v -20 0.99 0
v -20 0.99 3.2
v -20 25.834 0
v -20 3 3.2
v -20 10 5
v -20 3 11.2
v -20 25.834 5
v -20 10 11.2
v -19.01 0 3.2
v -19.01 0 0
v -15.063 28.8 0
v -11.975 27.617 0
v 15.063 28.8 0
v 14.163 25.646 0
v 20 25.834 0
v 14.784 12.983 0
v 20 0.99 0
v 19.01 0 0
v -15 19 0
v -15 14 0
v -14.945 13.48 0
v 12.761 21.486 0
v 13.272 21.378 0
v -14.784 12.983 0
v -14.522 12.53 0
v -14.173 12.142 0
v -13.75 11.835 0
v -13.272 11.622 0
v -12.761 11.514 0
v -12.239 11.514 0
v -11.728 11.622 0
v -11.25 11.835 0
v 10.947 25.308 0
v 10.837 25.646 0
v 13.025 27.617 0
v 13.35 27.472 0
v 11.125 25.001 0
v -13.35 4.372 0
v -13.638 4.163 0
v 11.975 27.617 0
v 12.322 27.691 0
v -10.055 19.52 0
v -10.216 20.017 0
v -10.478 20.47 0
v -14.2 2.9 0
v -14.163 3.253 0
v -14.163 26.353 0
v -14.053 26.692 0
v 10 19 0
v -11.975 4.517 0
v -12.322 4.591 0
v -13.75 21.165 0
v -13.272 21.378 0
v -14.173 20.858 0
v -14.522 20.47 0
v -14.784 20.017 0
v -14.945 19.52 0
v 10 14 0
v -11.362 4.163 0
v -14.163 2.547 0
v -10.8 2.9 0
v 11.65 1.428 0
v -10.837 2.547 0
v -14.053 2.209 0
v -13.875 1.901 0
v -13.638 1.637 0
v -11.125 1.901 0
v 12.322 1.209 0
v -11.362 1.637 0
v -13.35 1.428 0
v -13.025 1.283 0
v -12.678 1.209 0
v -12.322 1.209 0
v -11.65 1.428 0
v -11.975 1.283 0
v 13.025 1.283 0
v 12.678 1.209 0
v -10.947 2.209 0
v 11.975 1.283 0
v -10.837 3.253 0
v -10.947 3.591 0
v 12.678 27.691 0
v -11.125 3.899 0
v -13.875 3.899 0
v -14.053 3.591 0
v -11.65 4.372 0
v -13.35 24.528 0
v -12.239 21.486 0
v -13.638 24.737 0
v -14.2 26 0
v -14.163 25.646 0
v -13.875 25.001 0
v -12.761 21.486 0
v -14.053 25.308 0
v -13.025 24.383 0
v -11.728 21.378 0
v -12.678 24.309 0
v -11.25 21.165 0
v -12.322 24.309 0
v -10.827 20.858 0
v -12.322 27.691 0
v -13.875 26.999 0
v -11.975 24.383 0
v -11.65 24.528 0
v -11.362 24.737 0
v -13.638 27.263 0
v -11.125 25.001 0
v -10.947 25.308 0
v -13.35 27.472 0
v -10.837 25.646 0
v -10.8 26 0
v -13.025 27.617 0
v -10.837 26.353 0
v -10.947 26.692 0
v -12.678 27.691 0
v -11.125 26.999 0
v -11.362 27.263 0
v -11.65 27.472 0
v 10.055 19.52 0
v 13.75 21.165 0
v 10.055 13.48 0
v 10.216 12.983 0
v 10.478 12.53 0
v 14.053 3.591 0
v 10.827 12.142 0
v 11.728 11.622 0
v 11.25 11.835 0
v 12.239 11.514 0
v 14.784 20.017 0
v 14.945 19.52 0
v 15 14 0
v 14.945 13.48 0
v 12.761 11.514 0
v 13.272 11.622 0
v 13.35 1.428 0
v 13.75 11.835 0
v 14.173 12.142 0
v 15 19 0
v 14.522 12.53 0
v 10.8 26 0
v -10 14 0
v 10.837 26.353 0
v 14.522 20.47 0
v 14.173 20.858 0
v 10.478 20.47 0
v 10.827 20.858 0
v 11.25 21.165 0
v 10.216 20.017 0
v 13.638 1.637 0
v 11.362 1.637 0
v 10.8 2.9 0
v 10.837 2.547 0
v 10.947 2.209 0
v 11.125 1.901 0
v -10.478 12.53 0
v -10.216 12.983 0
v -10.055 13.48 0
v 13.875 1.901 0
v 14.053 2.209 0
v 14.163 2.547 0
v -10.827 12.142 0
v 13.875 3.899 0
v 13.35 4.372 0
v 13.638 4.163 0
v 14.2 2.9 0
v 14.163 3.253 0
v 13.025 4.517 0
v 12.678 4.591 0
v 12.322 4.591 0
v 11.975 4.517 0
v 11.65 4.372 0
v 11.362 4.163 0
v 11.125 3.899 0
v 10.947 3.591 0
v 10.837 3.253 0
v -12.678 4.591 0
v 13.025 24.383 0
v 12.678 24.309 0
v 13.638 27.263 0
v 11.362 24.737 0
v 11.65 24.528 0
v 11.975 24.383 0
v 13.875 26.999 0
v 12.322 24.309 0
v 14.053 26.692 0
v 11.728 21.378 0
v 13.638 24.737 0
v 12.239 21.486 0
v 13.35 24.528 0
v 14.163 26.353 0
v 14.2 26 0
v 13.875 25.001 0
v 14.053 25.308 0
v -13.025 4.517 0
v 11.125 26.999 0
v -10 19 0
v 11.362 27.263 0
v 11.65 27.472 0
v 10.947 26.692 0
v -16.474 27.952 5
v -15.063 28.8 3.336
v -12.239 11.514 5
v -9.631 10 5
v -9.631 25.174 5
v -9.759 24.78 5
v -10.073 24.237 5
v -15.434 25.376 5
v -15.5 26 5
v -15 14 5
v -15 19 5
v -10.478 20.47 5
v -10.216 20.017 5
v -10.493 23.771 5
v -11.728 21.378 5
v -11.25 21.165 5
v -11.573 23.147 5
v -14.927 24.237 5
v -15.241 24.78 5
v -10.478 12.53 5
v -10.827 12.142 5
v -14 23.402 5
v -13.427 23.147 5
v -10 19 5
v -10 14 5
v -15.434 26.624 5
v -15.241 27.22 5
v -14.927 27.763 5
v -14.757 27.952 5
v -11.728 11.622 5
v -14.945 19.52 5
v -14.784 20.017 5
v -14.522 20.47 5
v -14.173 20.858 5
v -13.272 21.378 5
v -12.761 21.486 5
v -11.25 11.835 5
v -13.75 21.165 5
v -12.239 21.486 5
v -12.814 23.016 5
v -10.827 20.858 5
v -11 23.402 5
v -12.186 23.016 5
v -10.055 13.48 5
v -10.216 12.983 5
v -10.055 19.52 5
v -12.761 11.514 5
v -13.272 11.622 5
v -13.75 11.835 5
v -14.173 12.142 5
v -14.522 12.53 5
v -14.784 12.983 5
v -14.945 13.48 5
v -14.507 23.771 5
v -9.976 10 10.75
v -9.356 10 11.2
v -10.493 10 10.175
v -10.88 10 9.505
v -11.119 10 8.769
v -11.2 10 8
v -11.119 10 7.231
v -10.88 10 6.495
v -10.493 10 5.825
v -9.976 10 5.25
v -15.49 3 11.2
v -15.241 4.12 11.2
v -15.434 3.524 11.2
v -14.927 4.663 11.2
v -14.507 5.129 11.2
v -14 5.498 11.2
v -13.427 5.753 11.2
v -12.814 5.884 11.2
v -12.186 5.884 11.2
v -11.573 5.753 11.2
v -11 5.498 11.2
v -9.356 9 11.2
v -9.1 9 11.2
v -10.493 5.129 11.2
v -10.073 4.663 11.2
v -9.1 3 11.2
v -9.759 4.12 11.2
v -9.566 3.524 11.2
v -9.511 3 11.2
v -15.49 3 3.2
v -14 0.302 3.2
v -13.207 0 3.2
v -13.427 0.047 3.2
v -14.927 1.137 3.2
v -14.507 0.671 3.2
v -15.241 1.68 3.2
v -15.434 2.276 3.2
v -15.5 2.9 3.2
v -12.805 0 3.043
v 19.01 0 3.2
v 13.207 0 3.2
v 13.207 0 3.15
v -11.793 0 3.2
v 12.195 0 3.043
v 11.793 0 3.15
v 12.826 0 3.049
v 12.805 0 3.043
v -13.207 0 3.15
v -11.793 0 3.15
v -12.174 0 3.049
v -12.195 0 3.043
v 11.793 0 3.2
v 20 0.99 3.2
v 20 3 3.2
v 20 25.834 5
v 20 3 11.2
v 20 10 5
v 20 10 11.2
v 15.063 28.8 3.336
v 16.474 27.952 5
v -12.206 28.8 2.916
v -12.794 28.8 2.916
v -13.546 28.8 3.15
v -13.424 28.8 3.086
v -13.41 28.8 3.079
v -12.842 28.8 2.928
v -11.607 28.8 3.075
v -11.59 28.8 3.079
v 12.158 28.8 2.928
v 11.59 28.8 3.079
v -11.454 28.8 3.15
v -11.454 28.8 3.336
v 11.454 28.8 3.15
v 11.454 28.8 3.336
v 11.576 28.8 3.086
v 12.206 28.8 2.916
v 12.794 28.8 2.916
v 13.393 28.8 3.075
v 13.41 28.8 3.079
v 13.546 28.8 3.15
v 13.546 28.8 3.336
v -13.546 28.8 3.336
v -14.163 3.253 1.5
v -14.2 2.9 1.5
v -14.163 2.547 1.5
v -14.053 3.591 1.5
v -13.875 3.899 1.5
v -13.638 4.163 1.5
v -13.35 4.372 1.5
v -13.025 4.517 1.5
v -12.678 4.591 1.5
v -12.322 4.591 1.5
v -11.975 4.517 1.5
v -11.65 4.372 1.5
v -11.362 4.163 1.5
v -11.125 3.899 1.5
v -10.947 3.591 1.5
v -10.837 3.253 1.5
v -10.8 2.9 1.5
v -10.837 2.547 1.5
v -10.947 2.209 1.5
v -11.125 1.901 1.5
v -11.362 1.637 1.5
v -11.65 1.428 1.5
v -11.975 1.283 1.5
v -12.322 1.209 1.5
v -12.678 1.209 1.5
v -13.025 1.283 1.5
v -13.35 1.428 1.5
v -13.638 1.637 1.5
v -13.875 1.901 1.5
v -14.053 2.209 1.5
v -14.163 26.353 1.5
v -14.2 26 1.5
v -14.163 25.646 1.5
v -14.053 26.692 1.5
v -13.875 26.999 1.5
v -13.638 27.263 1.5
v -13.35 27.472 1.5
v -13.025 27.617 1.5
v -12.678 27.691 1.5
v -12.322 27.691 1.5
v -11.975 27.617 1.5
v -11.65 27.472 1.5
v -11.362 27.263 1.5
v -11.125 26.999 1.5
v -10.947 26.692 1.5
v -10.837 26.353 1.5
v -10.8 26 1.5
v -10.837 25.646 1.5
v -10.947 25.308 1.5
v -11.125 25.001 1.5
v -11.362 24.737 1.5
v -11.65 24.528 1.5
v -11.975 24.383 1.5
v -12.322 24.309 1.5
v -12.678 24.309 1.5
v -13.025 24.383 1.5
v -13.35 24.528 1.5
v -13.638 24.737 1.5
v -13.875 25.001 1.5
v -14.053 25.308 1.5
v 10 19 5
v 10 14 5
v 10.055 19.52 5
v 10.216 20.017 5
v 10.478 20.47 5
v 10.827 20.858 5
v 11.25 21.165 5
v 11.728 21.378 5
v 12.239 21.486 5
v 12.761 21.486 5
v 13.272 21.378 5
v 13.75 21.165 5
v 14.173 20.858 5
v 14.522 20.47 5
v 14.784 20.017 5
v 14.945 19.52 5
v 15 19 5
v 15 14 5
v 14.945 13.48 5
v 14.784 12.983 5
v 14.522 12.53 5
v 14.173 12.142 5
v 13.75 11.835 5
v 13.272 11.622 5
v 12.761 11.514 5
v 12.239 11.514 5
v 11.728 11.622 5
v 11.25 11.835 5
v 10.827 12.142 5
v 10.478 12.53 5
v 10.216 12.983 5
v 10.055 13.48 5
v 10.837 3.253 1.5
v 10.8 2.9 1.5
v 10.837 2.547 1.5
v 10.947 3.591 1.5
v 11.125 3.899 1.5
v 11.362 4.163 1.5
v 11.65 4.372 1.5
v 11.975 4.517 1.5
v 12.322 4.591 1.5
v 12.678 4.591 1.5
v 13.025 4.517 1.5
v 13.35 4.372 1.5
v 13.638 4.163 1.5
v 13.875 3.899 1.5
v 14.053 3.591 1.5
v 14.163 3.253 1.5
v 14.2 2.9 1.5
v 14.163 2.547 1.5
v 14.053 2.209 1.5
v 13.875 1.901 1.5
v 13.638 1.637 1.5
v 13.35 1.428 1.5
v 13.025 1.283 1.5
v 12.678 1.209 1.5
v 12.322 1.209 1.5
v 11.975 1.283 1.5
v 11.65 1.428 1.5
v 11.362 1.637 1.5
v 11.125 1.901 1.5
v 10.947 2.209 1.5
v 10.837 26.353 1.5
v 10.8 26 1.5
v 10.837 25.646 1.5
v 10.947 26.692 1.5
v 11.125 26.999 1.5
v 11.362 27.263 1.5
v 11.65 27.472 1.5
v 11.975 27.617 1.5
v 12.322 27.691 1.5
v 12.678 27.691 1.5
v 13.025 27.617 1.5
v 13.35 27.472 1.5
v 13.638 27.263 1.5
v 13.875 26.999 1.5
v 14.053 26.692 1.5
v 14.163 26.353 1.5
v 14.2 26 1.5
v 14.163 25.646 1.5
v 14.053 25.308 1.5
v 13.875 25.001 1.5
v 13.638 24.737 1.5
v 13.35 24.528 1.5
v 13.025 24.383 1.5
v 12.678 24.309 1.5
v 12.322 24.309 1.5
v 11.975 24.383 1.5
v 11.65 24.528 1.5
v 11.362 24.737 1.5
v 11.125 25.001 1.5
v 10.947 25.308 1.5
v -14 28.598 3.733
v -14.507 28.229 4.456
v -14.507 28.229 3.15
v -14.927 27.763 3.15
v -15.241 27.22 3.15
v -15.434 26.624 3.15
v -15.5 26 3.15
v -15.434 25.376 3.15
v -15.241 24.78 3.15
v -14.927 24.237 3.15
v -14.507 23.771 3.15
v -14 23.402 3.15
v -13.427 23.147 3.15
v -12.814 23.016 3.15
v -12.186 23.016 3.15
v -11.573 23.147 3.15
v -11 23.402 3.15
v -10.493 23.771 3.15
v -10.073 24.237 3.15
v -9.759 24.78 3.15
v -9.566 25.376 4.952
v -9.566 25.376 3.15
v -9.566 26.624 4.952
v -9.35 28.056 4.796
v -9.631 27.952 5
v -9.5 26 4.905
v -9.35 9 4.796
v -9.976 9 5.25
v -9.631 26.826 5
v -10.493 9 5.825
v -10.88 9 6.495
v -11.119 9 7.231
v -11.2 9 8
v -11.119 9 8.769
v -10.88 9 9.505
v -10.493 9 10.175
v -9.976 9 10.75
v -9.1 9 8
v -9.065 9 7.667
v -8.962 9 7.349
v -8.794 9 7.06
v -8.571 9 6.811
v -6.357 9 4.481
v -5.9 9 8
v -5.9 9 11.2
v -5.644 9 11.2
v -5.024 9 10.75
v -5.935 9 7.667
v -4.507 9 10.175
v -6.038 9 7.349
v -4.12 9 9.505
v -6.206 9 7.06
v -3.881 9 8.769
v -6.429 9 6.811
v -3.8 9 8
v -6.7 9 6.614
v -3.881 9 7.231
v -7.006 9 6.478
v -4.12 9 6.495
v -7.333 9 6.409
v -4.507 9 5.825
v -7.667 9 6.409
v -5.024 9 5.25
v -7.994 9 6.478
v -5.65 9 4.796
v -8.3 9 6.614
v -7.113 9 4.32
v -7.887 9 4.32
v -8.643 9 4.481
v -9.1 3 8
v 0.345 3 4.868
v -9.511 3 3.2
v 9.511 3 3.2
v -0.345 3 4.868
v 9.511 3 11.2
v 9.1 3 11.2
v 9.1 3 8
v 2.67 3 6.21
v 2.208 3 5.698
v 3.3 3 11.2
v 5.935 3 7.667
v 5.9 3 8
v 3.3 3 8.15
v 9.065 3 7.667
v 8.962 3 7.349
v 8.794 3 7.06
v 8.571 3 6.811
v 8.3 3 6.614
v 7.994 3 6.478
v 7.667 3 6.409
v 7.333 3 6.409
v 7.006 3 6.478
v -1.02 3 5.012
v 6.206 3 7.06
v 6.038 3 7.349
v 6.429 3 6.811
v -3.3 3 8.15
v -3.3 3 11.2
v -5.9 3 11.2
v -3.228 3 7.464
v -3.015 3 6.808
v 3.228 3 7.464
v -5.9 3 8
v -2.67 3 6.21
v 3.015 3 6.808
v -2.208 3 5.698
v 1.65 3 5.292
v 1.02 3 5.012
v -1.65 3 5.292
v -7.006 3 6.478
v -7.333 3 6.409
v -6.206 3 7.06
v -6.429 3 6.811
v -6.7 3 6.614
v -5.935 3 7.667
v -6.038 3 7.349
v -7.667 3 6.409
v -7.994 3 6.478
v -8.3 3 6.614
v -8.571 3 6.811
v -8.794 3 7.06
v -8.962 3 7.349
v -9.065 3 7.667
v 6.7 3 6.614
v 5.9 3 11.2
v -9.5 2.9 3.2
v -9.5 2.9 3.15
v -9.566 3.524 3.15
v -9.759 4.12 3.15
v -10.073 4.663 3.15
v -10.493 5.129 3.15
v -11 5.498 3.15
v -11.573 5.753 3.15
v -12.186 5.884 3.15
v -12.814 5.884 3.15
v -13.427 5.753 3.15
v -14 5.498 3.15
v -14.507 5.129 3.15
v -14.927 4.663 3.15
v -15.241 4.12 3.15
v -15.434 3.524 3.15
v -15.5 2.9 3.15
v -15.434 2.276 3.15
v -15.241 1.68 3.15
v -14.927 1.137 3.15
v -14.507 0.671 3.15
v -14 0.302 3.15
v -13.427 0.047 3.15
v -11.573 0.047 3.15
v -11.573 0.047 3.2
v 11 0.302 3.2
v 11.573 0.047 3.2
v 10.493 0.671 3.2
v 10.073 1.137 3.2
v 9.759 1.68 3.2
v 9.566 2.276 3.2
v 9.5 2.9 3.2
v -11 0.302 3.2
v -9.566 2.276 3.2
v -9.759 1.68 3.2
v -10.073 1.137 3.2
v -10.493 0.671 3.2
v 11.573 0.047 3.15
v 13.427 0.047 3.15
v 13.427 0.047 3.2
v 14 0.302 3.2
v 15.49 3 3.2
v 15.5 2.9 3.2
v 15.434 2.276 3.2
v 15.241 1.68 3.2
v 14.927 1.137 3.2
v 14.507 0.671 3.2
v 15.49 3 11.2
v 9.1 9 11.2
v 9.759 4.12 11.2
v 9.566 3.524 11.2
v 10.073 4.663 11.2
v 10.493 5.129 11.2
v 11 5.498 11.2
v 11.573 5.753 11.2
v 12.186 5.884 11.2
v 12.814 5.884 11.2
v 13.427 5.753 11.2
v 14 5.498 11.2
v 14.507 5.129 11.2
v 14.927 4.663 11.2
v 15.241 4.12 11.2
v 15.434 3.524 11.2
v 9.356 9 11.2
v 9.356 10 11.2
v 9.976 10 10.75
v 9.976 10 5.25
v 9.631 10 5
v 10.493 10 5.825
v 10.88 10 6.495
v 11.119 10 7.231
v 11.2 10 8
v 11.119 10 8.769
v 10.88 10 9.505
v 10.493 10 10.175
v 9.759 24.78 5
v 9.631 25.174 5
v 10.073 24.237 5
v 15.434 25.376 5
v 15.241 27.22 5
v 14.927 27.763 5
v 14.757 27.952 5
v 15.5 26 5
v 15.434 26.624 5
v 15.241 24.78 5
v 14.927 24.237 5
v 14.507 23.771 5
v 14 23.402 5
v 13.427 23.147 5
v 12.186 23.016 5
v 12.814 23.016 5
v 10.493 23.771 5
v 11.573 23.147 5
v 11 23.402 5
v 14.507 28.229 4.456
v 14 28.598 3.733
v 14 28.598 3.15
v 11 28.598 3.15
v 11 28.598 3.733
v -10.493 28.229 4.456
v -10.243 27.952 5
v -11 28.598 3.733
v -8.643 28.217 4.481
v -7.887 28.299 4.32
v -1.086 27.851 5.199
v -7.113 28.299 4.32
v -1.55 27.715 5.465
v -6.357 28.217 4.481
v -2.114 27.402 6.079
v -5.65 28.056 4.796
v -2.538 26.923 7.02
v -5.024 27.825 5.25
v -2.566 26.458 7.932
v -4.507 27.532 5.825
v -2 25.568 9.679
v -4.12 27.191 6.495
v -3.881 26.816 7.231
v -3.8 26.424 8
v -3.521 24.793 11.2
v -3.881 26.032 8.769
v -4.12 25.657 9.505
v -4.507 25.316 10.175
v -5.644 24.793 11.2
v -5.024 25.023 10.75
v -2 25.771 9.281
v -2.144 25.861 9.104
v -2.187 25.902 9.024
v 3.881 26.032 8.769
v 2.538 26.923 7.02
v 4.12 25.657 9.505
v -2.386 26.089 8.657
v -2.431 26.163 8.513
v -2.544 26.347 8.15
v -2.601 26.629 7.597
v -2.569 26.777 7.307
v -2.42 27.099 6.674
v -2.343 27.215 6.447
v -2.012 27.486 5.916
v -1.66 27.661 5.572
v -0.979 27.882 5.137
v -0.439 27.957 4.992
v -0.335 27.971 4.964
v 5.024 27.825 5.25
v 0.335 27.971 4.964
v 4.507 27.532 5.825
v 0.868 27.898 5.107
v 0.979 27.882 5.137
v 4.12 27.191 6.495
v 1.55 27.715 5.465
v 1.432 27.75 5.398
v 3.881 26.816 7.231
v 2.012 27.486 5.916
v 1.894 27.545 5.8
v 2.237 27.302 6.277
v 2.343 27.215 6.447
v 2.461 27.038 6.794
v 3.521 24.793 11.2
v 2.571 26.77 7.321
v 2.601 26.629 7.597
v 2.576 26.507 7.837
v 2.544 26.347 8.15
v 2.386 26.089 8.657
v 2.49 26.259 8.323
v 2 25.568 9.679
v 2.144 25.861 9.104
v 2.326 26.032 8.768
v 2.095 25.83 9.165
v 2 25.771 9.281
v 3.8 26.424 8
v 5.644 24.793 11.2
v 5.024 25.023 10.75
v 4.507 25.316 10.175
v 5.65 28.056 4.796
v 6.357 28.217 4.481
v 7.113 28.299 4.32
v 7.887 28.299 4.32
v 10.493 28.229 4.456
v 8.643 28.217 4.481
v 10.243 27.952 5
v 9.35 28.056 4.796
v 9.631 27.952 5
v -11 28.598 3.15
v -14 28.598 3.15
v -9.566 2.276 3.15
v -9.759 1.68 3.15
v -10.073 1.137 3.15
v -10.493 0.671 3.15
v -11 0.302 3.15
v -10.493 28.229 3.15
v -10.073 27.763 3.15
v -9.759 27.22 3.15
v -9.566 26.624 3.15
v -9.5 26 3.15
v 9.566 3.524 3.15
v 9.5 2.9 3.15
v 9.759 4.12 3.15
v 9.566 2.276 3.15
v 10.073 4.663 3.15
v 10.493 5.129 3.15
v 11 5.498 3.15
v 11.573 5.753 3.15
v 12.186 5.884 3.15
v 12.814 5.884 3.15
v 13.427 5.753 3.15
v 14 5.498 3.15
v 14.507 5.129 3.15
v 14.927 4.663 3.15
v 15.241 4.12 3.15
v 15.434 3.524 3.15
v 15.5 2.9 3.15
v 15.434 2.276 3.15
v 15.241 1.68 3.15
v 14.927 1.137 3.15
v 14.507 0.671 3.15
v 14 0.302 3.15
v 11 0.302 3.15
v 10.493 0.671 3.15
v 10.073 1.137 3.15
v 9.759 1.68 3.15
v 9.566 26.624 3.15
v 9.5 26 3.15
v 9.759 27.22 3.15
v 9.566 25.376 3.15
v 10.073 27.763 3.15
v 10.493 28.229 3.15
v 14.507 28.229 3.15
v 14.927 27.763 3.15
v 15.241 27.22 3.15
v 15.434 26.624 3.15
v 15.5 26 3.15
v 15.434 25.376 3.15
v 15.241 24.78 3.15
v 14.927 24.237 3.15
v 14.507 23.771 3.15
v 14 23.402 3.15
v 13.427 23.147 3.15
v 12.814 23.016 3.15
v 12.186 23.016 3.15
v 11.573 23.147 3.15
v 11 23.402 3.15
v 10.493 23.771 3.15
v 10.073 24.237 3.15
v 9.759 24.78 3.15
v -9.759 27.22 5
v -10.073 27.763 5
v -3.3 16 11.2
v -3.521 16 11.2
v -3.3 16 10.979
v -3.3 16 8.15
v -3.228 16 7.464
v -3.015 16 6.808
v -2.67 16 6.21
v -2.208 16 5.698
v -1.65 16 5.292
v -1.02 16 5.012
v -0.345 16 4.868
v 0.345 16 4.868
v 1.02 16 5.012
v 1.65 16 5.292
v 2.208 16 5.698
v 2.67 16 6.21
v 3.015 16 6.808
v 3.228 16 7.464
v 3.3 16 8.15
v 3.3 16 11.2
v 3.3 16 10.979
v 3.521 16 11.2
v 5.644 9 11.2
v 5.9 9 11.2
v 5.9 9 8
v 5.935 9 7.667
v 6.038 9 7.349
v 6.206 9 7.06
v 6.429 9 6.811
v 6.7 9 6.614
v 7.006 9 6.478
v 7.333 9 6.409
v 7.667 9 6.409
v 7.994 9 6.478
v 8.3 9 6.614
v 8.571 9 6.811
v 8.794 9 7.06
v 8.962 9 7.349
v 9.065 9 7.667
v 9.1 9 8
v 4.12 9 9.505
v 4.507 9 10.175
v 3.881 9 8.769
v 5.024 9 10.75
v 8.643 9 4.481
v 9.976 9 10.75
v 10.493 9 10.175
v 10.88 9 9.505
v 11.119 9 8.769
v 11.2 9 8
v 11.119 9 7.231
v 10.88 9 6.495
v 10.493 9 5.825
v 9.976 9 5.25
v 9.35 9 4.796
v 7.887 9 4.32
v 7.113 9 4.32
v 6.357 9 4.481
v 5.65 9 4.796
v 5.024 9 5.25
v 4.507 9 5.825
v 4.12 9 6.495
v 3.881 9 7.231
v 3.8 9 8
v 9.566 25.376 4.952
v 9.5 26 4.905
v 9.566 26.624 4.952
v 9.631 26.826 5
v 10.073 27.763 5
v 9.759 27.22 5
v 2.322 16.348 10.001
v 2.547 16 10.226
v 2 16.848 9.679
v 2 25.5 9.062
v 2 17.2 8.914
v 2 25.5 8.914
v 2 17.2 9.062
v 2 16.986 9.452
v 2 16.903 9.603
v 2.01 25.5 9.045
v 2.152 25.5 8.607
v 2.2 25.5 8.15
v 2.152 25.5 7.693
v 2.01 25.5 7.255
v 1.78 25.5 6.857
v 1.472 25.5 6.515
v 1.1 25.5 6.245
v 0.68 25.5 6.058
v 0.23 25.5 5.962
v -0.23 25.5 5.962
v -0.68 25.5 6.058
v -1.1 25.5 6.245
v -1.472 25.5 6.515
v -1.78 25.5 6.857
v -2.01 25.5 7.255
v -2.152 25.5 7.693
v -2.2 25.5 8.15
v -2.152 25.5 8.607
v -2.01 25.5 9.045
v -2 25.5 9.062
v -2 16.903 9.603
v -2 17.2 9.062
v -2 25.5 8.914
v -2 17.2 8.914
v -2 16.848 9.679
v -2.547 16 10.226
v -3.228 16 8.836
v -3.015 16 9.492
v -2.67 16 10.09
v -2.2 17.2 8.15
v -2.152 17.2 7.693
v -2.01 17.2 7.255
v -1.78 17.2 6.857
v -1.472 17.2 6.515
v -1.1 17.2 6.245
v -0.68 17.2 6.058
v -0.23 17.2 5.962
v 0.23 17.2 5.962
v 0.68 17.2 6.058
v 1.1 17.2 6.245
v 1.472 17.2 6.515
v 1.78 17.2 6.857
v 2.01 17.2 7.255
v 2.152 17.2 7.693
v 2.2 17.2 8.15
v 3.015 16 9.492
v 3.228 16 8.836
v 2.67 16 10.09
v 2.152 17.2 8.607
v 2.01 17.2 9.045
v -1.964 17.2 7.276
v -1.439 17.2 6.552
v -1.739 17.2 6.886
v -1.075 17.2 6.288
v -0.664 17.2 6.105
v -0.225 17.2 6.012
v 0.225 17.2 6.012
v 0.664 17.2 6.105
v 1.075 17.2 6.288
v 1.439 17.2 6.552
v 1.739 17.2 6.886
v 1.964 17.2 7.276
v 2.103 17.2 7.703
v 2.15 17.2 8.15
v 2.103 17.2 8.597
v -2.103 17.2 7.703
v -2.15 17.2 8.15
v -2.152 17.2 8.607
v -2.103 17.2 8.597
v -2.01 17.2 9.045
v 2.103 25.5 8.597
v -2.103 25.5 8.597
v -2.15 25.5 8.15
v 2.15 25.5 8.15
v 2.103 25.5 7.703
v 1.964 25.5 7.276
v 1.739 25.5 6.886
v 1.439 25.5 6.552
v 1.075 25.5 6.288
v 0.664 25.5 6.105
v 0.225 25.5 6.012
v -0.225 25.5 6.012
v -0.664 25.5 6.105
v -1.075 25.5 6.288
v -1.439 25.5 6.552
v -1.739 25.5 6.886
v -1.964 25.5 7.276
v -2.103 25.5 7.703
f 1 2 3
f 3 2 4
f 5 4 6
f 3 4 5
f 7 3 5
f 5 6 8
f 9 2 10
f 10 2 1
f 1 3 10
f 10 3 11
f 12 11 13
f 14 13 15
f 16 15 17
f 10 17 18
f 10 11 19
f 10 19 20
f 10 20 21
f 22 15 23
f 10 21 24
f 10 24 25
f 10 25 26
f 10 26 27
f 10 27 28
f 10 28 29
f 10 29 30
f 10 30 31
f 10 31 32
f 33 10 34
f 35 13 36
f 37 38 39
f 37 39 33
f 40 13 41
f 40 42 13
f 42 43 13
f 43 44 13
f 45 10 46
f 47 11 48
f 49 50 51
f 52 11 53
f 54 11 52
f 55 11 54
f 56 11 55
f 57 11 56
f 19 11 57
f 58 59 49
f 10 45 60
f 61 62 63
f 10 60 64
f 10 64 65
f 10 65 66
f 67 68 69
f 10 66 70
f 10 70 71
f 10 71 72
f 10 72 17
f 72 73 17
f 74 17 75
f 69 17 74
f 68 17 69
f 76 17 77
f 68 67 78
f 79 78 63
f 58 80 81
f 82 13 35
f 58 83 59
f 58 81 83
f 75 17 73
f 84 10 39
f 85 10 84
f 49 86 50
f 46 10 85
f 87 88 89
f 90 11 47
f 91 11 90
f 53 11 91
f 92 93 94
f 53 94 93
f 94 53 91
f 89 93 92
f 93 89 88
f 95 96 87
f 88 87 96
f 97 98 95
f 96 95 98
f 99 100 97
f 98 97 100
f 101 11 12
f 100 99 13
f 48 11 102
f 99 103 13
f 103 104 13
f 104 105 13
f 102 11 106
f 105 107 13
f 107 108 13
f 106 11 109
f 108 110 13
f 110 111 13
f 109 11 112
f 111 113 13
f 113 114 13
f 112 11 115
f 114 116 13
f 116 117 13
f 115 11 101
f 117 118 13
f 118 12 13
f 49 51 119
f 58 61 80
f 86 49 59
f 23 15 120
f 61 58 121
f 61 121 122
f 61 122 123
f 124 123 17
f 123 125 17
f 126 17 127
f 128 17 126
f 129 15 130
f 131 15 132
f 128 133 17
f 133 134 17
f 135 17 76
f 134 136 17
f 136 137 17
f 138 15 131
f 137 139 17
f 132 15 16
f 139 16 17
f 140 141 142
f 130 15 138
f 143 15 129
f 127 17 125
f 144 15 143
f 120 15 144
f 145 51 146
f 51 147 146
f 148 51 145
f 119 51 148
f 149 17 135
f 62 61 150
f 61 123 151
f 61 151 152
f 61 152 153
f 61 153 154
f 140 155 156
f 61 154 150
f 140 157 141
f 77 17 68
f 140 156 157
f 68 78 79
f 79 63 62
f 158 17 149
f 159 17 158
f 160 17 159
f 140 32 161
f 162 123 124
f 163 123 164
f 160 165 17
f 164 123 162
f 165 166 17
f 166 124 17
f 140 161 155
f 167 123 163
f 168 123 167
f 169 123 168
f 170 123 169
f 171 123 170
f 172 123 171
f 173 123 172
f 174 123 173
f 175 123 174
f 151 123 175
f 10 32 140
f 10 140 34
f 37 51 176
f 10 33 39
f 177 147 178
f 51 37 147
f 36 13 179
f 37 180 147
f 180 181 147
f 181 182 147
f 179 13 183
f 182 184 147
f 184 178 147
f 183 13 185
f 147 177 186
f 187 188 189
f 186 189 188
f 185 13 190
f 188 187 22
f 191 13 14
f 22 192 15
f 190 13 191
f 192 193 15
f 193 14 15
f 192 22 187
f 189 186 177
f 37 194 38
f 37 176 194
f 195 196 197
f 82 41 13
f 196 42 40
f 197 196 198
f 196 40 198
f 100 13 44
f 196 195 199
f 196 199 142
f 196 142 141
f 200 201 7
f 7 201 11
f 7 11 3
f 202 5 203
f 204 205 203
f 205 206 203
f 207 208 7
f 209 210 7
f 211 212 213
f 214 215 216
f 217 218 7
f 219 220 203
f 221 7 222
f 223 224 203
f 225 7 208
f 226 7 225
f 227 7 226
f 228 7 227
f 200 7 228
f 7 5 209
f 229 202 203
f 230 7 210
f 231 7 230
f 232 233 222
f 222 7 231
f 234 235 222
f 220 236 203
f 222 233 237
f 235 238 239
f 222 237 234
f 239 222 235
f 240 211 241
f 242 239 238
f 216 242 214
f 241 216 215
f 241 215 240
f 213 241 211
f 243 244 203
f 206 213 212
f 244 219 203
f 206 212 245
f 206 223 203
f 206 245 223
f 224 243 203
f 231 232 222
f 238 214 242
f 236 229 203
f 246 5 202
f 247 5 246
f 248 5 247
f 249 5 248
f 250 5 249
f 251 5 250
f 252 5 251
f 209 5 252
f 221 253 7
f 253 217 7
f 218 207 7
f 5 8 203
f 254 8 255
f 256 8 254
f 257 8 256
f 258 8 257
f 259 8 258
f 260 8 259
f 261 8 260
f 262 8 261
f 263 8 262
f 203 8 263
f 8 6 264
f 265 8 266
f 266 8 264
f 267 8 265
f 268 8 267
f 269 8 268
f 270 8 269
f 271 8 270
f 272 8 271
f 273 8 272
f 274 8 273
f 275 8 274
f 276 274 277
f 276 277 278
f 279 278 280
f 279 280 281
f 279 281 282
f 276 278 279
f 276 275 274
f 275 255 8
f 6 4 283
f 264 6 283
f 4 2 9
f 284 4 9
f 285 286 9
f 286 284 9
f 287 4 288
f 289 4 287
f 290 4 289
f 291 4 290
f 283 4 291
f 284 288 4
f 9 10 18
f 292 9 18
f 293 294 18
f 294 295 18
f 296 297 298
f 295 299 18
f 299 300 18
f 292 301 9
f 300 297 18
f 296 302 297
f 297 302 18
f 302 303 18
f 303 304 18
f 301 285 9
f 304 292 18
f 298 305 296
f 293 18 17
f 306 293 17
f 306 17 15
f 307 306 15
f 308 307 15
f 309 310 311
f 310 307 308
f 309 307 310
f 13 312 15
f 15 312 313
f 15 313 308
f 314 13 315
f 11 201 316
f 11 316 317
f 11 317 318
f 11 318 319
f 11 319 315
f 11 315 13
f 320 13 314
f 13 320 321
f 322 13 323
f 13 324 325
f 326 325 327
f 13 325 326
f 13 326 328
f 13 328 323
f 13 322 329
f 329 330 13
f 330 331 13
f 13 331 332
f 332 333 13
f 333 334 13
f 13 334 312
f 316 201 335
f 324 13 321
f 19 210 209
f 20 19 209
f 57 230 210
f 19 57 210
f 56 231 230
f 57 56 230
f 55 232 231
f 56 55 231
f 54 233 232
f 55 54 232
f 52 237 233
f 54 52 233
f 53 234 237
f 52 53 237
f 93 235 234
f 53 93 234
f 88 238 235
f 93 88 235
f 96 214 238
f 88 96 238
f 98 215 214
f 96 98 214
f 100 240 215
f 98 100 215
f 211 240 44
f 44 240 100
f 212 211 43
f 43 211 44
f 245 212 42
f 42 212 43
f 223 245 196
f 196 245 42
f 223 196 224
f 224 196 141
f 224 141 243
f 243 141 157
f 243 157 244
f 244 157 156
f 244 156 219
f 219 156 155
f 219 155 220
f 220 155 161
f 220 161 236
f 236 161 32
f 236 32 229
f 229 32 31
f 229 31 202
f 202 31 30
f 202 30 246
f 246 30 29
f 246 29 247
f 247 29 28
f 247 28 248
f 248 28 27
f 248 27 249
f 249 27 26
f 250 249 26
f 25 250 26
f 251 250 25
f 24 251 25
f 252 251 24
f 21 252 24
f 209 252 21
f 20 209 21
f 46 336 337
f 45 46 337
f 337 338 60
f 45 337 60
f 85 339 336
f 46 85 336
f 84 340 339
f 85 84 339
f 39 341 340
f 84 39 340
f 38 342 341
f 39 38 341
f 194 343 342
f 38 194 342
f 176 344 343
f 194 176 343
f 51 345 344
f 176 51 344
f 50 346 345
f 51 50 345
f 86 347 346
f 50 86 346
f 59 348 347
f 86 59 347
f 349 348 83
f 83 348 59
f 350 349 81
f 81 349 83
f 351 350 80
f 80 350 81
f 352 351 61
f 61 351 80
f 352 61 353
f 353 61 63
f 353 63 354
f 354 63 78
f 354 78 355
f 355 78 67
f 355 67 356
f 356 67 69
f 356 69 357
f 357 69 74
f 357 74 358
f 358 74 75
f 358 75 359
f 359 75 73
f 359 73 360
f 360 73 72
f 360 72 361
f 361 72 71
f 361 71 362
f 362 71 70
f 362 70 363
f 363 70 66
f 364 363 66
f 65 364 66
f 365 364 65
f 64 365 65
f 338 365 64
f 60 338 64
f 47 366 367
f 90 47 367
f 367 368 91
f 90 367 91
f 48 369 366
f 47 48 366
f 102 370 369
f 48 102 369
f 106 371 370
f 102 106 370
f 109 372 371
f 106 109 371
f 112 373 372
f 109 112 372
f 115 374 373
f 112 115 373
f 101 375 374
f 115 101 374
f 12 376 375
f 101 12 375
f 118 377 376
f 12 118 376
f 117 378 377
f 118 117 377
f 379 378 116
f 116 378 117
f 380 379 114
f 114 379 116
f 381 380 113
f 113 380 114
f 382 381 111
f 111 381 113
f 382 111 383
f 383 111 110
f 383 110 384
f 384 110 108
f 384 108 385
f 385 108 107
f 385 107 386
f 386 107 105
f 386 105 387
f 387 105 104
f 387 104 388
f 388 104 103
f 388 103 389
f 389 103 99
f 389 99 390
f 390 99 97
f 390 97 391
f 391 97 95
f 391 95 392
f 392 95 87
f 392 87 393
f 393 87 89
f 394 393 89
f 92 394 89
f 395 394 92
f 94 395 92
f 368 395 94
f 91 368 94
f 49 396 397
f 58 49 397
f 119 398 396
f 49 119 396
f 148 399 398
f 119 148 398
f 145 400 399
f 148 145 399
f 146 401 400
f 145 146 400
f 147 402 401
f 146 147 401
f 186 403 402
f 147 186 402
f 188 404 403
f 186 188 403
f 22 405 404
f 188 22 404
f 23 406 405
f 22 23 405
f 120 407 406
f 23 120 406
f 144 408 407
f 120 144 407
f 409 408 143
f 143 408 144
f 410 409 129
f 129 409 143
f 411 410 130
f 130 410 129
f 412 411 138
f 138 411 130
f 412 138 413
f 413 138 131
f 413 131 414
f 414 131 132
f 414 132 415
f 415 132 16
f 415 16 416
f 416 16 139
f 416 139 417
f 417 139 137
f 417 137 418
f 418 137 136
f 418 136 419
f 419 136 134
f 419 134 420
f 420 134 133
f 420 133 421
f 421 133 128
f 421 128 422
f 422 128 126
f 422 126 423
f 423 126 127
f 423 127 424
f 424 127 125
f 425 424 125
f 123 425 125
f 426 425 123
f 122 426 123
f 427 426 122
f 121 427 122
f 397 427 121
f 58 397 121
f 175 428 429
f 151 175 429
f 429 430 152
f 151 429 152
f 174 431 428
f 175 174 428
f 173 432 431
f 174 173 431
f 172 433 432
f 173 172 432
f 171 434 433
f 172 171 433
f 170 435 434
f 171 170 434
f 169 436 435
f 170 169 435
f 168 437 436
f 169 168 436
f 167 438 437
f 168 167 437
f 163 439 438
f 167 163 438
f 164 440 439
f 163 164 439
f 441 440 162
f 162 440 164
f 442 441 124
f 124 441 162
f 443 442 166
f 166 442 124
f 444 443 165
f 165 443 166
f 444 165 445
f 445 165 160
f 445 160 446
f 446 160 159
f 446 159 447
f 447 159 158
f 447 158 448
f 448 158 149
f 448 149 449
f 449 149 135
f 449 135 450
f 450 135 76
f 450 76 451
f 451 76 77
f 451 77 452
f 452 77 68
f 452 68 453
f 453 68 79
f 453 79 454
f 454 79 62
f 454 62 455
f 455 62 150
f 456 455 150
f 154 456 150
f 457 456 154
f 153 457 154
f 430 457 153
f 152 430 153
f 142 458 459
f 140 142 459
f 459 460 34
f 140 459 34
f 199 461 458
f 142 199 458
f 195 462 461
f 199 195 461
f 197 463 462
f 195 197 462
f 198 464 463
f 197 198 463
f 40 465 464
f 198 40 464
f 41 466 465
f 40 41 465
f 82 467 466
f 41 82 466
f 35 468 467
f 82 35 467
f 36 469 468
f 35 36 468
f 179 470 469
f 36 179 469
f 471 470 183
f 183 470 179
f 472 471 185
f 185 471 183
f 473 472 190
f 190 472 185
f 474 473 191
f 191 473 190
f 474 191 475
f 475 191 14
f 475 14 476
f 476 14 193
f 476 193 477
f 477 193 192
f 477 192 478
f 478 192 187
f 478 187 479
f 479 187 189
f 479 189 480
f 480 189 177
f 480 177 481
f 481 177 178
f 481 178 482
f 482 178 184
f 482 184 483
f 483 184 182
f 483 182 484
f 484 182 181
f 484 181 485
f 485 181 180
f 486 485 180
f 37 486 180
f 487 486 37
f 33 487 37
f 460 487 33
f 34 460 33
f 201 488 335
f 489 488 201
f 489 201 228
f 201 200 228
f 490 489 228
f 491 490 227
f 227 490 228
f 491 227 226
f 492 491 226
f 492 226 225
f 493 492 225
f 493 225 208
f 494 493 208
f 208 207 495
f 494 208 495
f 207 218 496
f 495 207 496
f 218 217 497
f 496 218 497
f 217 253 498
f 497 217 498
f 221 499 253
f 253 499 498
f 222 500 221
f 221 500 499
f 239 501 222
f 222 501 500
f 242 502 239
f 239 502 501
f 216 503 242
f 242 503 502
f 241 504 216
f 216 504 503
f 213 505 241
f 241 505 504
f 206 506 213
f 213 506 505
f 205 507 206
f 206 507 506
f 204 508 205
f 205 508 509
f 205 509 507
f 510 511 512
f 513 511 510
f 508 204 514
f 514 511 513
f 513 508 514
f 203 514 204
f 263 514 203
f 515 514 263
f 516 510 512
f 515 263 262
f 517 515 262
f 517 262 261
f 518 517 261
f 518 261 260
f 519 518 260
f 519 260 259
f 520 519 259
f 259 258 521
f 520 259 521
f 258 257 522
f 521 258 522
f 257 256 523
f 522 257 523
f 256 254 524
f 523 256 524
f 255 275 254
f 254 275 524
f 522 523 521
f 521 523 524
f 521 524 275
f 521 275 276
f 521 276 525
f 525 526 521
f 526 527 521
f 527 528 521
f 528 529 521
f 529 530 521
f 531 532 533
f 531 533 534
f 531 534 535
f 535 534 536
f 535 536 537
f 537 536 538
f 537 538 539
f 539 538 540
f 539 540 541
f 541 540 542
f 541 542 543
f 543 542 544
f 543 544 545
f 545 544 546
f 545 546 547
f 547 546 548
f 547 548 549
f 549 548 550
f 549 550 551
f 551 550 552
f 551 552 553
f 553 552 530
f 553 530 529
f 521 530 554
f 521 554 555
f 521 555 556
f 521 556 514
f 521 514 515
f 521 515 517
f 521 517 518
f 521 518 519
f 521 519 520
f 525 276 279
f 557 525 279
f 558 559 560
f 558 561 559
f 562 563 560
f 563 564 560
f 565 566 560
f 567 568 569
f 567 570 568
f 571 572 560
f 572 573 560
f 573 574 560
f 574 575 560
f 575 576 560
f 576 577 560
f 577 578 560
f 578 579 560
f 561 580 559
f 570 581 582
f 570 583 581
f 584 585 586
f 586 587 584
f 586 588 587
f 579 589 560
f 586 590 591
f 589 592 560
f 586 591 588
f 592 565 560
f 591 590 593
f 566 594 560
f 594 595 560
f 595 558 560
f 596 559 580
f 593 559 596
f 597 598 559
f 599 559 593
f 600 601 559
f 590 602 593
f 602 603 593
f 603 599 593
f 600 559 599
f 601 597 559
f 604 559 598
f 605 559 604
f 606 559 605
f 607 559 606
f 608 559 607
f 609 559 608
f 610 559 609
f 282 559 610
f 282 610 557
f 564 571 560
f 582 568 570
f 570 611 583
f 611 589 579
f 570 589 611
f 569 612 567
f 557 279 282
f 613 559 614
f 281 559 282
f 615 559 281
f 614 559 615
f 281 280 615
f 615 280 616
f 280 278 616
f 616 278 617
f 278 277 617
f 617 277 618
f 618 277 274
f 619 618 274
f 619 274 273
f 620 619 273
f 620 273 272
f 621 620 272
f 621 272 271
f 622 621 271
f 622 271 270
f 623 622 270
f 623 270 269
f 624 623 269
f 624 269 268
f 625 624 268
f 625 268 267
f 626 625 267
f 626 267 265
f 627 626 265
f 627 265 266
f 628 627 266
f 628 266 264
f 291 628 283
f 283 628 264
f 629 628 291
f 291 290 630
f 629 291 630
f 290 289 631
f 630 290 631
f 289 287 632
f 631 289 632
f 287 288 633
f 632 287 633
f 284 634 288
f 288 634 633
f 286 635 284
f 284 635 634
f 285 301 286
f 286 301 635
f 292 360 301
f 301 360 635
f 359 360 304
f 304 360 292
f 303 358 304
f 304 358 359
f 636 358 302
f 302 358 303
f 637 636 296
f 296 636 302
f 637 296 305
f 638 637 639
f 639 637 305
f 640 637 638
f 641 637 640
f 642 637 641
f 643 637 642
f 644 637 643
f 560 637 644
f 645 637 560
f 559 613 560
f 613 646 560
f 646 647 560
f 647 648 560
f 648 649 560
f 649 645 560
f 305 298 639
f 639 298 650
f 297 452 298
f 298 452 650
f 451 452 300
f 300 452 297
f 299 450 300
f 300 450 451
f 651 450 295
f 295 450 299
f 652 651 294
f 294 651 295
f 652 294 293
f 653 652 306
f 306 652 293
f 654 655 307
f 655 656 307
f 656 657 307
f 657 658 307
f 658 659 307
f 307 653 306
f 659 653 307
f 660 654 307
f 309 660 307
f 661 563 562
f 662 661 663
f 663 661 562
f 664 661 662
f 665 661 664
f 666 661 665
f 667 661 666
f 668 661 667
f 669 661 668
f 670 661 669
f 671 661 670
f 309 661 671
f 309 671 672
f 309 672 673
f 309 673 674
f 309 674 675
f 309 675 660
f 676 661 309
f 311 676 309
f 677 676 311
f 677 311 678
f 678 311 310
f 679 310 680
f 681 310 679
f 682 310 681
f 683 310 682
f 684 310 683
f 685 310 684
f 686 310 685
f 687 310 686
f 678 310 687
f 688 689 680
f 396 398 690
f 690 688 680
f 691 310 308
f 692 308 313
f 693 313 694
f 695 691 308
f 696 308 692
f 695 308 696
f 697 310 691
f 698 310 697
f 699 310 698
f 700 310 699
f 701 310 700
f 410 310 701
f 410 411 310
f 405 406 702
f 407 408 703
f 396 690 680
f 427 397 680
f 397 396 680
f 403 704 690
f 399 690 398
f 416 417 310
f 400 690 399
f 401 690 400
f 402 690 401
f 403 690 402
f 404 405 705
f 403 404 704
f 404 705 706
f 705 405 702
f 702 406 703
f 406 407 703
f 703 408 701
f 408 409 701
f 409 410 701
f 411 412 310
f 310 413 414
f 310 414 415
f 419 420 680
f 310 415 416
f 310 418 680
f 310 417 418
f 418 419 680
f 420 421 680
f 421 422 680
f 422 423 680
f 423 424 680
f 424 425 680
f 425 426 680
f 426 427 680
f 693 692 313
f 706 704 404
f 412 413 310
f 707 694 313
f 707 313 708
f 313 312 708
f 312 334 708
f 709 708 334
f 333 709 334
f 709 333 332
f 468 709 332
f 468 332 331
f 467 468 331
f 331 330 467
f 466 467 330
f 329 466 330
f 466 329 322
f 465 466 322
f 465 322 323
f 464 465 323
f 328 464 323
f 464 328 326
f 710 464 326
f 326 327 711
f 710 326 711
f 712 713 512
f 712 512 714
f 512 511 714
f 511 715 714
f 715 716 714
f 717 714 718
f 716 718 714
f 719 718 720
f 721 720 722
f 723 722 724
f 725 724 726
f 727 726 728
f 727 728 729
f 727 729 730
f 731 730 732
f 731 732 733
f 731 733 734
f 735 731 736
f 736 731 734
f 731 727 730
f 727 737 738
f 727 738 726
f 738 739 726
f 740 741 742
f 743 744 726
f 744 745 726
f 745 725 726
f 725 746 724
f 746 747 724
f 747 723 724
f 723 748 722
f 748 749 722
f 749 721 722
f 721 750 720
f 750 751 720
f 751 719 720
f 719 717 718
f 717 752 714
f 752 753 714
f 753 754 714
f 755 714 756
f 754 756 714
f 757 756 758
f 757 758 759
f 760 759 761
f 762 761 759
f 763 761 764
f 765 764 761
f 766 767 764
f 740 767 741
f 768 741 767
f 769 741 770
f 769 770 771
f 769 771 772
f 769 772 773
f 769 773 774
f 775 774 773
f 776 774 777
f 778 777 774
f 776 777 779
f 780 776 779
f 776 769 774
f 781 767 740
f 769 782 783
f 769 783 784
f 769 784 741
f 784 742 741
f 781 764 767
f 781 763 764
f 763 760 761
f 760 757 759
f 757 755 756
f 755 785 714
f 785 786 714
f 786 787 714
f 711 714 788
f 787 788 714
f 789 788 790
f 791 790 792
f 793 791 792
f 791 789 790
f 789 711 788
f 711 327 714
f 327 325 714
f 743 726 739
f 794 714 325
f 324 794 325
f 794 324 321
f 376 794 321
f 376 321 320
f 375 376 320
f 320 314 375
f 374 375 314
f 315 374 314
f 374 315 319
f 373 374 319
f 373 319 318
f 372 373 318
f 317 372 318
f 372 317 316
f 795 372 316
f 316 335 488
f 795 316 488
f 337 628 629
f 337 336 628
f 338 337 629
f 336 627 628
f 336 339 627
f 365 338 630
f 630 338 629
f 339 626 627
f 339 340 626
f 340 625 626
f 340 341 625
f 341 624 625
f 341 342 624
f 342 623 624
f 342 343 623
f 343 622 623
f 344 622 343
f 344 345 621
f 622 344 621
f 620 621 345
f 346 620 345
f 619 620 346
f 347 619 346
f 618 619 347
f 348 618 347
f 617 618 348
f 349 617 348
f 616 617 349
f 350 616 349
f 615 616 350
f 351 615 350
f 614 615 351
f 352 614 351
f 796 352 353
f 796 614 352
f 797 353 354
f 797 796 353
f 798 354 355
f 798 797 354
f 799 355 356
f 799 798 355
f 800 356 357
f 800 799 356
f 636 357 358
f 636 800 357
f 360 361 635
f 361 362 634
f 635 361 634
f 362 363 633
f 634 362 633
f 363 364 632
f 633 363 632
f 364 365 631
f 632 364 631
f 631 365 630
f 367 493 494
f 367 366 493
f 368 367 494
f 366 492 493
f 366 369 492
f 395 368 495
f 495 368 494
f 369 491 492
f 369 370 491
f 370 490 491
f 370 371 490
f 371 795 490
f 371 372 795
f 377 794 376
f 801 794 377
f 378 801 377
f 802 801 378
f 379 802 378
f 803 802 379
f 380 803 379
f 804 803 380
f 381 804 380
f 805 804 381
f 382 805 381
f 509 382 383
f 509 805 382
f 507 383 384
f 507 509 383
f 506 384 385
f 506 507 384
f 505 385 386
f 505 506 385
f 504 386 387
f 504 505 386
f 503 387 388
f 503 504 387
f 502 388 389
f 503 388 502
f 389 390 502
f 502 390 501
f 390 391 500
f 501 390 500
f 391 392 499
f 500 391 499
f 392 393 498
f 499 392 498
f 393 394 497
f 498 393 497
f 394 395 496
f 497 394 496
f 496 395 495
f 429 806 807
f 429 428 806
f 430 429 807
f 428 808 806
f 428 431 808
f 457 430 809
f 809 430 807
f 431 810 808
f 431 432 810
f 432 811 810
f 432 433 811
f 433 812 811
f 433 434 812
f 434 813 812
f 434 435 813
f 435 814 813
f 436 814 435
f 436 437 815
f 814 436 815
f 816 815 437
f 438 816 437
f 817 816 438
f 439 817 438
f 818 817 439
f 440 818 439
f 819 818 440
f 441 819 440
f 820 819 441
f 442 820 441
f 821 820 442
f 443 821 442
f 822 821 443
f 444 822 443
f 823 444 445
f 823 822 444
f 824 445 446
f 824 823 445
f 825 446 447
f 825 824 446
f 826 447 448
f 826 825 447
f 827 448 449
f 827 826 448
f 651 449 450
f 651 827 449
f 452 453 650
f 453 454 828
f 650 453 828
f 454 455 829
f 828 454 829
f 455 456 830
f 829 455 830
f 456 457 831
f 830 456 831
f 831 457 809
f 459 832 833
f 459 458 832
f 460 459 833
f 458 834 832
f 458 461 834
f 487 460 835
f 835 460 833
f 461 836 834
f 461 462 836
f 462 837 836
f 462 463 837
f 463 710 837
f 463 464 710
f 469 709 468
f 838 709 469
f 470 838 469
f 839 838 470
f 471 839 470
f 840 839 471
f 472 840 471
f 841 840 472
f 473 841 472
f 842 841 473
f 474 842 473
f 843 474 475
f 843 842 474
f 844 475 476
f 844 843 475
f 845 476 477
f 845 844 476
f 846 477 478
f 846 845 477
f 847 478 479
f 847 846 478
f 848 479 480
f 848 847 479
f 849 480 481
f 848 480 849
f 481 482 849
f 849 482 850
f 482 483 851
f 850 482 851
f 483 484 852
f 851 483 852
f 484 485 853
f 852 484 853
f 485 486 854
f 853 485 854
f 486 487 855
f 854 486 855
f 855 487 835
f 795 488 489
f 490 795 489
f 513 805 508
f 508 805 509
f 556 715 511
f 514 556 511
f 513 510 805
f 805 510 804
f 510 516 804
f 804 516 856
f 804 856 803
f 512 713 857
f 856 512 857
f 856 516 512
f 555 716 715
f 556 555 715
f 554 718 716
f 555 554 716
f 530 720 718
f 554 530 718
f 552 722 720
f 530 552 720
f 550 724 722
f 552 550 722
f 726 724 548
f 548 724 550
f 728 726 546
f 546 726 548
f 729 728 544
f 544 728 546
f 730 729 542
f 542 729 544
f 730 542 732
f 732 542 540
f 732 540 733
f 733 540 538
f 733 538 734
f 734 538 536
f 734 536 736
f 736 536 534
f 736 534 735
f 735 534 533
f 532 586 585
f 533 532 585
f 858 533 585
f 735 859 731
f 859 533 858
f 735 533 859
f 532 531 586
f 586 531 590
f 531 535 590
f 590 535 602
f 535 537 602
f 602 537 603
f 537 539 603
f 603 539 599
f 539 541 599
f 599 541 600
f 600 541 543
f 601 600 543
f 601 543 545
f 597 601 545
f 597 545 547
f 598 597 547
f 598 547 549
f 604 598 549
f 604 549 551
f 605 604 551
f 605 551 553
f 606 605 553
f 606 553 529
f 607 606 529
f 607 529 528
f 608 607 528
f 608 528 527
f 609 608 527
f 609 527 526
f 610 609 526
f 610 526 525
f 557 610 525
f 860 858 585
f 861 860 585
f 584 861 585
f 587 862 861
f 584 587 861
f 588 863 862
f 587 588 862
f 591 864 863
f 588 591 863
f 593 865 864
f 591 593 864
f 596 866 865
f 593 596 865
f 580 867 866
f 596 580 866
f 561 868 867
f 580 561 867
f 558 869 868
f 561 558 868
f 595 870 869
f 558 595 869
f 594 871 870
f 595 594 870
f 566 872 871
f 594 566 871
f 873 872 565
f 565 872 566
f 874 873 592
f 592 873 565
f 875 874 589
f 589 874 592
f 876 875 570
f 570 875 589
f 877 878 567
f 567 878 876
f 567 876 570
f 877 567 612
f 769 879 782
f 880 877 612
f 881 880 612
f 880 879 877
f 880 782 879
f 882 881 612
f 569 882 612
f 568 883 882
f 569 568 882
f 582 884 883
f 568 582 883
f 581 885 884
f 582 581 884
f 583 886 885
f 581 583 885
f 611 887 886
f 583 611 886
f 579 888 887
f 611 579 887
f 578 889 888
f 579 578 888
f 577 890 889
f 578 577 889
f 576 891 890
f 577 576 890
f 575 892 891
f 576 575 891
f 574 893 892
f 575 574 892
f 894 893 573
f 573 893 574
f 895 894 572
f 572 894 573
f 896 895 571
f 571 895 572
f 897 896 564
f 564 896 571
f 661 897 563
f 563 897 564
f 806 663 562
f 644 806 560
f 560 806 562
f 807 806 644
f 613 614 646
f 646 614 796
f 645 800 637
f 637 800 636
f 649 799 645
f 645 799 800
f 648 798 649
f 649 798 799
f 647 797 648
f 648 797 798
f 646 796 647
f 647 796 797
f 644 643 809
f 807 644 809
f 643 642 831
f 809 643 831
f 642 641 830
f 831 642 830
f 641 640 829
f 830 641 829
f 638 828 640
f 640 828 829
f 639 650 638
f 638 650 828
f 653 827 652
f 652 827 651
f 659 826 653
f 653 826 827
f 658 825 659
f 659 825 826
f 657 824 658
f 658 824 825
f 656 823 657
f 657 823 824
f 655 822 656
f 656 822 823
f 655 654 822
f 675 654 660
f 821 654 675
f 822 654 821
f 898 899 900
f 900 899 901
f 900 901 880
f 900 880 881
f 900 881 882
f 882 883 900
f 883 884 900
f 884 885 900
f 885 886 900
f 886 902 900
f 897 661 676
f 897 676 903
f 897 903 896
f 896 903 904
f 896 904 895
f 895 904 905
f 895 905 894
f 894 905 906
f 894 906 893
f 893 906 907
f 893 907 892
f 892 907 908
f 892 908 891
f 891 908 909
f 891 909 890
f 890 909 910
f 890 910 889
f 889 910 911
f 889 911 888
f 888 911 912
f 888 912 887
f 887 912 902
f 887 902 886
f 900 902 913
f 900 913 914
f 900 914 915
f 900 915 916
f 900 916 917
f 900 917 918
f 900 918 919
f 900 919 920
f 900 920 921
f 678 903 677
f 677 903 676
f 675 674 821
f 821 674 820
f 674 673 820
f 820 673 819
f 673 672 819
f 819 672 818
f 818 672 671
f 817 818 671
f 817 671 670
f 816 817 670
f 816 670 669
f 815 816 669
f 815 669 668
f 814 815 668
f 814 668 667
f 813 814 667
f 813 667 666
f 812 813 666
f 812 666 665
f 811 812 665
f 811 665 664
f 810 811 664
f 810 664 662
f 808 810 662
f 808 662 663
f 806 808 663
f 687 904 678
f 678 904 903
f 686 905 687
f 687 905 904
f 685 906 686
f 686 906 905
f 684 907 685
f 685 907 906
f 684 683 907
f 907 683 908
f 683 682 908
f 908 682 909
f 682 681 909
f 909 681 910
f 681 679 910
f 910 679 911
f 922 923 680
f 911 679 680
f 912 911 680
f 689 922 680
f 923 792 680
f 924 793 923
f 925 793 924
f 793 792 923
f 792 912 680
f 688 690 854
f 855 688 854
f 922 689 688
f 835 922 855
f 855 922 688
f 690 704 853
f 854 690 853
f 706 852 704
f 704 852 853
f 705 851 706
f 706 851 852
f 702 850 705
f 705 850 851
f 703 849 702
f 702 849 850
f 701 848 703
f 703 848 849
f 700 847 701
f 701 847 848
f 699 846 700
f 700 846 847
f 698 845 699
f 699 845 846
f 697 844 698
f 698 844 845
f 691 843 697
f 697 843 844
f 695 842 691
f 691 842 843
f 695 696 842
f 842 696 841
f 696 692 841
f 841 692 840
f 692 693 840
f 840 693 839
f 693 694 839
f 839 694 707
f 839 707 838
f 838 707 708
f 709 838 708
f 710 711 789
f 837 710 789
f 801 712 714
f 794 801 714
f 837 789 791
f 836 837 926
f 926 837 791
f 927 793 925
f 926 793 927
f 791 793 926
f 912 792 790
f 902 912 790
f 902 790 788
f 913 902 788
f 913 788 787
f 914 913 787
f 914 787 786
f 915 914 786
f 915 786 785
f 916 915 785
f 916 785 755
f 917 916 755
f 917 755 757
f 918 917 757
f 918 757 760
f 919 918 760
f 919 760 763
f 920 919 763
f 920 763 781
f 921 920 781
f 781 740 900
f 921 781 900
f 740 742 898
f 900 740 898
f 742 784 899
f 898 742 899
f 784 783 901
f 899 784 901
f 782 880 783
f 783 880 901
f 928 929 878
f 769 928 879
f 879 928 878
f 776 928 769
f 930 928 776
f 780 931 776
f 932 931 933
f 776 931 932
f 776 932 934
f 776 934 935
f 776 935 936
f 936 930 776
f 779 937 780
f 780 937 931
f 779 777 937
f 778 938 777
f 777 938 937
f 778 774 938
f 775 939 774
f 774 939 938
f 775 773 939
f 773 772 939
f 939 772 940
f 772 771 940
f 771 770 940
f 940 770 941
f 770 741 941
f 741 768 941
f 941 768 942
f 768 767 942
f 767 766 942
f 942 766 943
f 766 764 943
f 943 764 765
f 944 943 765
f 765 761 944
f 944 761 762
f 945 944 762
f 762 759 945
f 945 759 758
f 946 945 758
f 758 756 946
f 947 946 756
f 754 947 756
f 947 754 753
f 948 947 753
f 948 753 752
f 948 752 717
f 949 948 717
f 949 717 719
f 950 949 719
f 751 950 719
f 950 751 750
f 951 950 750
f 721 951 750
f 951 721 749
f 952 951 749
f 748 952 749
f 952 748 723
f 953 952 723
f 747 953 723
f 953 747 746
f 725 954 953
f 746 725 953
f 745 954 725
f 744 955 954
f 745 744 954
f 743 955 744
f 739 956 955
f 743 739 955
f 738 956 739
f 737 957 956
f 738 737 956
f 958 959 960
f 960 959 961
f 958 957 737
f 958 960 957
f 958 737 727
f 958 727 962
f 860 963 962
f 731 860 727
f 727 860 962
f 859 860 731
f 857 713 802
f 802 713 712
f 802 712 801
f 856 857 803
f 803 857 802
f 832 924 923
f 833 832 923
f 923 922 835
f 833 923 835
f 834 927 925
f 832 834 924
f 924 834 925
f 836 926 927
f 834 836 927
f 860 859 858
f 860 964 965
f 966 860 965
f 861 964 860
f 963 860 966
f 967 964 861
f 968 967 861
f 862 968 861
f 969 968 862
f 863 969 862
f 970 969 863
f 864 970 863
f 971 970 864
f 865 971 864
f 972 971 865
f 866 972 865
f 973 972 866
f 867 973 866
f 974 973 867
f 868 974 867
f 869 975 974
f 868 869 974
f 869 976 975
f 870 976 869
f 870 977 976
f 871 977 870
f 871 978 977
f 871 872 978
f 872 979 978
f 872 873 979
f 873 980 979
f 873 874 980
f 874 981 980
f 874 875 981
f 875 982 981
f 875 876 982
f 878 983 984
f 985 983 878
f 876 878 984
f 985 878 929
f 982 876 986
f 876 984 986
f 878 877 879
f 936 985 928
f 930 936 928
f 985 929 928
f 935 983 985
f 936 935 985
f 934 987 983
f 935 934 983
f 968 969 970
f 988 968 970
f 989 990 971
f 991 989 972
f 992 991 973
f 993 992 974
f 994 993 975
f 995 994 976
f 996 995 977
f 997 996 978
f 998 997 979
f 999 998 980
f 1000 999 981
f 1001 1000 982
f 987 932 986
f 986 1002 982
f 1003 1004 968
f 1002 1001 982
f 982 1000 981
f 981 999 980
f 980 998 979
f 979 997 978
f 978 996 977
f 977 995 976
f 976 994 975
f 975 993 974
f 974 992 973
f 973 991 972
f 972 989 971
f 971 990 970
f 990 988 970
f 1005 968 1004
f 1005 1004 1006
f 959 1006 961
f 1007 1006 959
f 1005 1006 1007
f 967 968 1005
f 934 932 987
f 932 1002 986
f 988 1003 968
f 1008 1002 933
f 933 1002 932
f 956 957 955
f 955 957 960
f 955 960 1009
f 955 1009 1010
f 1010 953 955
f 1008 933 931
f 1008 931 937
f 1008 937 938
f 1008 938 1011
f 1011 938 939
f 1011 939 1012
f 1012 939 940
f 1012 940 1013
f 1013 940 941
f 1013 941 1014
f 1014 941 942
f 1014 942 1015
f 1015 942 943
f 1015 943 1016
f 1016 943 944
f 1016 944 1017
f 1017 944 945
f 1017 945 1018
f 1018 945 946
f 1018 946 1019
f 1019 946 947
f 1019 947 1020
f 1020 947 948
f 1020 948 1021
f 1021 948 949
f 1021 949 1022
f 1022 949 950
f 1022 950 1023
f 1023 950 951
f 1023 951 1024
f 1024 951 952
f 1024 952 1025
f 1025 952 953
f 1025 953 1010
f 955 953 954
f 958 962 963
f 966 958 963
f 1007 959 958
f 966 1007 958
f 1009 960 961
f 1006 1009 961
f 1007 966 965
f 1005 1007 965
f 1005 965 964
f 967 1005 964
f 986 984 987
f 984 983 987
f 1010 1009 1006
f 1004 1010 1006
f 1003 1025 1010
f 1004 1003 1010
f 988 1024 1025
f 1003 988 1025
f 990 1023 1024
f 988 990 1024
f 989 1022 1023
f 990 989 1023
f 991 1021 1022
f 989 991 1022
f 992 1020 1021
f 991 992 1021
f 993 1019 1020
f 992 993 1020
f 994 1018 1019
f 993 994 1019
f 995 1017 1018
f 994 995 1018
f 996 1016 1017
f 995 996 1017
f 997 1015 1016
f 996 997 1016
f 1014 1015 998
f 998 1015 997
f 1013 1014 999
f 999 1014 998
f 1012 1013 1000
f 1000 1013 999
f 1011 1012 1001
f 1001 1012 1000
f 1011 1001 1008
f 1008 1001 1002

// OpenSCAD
$fs = 0.01;

module solid_section() {
    translate([-20,0,0]) {
            cube([40,28.8,3.2]);
            translate([0,3,0]) {
                cube([40,25.8,5]);
                cube([40,7,11.2]);
                translate([13.5,0,0])
                    cube([13,25,11.2]);
            }
    }
}

// the original model has nice angled corners.
// Emulating them the crummy way here
module angular_edges() {
    translate([-20,30.5,0]) {
        rotate(27,[1,0,0])
            cube([40,5,15]);
    }
    // base corners
    for(m = [0,1]) {
        mirror([m,0,0]) {
            translate([-20,0,0]) {
                rotate(45,[0,0,1])
                    cube([1.4,5,10],center=true);
            }
            translate([-20,30.5,0]) {
                rotate(31,[0,0,1])
                    cube([10,8,10],center=true);
            }
        }
    }
}

// recessed hole for a self-tapper screw
module self_tapper_hole() {
    translate([0,0,-1])
        cylinder(r=1.7,h=30);
    translate([0,0,1.5]) {
        cylinder(r1=1.7,r2=3,h=1.65);
        translate([0,0,1.65])
            cylinder(r=3,h=20);
    }
}

// holes to mount the bracket to the x axis bracket
module xaxis_mounting_holes() {
    for(x = [-12.5, 12.5]) {
        for(y = [2.9, 26]) {
            translate([x,y,0])
                self_tapper_hole();
        }
        hull() {
            for(y = [14,19]) {
                translate([x,y,0]) {
                    cylinder(h=20,r=2.5);
                }
            }
        }
    }
}

// holes to mount the bracket to the heat sink
module heat_sink_mounting_holes() {
    rotate(-90, [1,0,0]) {
        for(x = [-7.5,7.5]) {
            translate([x,-8,0]) {
                cylinder(r=1.6,h=20);
                translate([0,-3.2,0])
                    cube([3.2,6.4,25], center=true);
                translate([0,0,9])
                    cylinder(r=3.7,h=50);
            }
        }
    }
}

// filament_path
module filament_path() {
    rotate(-90, [1,0,0]) {
        translate([0,-8.15,0]) {
            cylinder(r=2.15,h=30);
            cylinder(r=3.3,h=16);
            translate([0,0,16])
                cylinder(r1=3.3,r2=2.2,h=1.2);
            translate([0,0,25.5]) {
                    cylinder(r1=2.2,r2=3.5,h=3.2);
            }
            translate([-3.3,-6.6,0]) {
                cube([6.6,6.6,16]);
            }
            translate([0,-6.6,21]) {
                cube([4,14,12], center=true);
                for(r = [-45,45]) {
                    rotate(r,[0,0,1]) {
                        cube([5,10,10], center=true);
                    }
                }
            }
        }
    }
}

module nozzle_mounting() {
    difference() {
        solid_section();
        angular_edges();
        xaxis_mounting_holes();
        heat_sink_mounting_holes();
        filament_path();
    }
}

nozzle_mounting();
